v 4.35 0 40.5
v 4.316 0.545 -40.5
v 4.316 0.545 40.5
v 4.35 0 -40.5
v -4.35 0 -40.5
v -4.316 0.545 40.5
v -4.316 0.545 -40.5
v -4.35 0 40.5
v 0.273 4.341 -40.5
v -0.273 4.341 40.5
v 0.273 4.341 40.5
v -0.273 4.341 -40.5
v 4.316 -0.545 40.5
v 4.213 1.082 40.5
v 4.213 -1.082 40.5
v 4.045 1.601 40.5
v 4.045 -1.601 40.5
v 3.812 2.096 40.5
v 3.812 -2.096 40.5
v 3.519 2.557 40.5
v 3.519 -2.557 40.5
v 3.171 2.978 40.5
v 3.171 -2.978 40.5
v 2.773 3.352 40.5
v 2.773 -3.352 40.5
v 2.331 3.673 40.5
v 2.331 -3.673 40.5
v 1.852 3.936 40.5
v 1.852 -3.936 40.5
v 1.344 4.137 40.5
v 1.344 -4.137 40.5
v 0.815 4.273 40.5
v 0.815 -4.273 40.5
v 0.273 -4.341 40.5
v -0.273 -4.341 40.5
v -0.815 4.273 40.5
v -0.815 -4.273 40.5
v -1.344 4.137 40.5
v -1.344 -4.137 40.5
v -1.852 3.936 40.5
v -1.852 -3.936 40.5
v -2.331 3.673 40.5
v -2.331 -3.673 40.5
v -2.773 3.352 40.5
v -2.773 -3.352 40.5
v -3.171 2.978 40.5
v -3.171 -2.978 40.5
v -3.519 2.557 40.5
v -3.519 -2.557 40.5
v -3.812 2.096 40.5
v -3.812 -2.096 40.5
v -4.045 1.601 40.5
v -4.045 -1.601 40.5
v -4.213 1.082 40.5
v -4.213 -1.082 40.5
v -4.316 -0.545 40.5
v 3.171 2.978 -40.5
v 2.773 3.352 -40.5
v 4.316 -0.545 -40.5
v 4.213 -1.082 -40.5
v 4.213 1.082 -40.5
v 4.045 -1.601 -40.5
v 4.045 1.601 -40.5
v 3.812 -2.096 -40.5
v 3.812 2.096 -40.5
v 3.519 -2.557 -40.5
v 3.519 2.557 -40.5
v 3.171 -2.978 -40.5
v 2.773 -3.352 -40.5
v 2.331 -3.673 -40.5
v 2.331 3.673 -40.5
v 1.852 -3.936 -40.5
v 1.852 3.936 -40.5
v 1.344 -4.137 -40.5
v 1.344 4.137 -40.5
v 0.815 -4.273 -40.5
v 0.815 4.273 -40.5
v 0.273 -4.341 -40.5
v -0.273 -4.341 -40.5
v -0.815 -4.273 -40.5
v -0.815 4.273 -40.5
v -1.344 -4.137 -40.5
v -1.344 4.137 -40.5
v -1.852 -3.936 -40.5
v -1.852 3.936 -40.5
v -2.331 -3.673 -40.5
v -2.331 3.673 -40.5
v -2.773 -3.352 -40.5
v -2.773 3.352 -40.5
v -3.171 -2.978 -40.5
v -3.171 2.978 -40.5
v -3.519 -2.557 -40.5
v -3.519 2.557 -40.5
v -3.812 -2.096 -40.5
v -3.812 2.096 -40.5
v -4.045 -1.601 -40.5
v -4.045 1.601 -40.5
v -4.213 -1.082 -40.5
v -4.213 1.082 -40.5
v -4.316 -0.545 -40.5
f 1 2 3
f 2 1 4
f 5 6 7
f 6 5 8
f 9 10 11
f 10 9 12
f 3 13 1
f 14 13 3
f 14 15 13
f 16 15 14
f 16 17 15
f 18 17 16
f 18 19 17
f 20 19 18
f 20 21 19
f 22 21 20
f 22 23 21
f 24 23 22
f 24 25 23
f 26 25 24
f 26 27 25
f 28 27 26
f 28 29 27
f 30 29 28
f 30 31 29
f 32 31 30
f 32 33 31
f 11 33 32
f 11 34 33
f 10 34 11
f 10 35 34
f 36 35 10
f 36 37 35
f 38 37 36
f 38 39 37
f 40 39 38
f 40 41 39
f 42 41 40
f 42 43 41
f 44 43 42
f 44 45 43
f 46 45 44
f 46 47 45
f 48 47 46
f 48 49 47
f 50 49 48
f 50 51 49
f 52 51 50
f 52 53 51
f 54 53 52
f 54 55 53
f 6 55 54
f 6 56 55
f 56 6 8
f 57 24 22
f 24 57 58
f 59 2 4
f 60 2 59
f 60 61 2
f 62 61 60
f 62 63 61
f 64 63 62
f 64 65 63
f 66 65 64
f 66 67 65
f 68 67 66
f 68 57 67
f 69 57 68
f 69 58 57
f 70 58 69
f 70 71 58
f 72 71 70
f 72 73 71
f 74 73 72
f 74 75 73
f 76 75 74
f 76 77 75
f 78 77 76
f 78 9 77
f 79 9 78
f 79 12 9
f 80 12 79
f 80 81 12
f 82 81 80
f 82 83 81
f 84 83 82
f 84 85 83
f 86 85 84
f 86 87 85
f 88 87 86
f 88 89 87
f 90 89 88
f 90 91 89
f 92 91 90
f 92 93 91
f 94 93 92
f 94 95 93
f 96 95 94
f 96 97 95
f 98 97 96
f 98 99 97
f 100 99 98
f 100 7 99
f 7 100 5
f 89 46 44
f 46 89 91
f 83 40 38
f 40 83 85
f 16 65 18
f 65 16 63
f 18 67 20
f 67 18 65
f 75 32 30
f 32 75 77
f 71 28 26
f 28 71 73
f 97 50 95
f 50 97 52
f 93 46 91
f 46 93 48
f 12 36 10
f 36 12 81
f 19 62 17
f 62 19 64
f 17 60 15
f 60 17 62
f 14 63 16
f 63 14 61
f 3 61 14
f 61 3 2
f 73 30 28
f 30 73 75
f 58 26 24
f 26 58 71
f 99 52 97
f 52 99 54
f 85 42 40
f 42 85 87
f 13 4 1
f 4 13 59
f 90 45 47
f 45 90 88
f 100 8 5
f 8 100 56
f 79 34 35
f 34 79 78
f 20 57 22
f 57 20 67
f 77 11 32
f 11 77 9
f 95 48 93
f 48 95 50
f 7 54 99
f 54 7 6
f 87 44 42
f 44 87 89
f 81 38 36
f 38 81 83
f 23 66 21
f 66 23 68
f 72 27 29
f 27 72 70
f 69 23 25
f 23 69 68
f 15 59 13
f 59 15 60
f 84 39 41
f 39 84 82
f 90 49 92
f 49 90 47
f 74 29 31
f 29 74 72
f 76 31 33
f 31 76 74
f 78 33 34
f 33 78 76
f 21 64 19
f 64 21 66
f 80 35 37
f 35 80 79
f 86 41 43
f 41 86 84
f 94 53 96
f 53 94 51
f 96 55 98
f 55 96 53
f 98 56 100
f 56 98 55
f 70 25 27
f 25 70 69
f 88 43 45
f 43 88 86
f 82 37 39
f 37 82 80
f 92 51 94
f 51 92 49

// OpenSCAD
$fn = 50;


difference() {
	union() {
		translate(v = [0, 0, -40.5000000000]) {
			cylinder(h = 81, r = 4.3500000000);
		}
	}
	union() {
		translate(v = [0, 0, -100.0000000000]) {
			cylinder(h = 200, r = 0);
		}
	}
}
